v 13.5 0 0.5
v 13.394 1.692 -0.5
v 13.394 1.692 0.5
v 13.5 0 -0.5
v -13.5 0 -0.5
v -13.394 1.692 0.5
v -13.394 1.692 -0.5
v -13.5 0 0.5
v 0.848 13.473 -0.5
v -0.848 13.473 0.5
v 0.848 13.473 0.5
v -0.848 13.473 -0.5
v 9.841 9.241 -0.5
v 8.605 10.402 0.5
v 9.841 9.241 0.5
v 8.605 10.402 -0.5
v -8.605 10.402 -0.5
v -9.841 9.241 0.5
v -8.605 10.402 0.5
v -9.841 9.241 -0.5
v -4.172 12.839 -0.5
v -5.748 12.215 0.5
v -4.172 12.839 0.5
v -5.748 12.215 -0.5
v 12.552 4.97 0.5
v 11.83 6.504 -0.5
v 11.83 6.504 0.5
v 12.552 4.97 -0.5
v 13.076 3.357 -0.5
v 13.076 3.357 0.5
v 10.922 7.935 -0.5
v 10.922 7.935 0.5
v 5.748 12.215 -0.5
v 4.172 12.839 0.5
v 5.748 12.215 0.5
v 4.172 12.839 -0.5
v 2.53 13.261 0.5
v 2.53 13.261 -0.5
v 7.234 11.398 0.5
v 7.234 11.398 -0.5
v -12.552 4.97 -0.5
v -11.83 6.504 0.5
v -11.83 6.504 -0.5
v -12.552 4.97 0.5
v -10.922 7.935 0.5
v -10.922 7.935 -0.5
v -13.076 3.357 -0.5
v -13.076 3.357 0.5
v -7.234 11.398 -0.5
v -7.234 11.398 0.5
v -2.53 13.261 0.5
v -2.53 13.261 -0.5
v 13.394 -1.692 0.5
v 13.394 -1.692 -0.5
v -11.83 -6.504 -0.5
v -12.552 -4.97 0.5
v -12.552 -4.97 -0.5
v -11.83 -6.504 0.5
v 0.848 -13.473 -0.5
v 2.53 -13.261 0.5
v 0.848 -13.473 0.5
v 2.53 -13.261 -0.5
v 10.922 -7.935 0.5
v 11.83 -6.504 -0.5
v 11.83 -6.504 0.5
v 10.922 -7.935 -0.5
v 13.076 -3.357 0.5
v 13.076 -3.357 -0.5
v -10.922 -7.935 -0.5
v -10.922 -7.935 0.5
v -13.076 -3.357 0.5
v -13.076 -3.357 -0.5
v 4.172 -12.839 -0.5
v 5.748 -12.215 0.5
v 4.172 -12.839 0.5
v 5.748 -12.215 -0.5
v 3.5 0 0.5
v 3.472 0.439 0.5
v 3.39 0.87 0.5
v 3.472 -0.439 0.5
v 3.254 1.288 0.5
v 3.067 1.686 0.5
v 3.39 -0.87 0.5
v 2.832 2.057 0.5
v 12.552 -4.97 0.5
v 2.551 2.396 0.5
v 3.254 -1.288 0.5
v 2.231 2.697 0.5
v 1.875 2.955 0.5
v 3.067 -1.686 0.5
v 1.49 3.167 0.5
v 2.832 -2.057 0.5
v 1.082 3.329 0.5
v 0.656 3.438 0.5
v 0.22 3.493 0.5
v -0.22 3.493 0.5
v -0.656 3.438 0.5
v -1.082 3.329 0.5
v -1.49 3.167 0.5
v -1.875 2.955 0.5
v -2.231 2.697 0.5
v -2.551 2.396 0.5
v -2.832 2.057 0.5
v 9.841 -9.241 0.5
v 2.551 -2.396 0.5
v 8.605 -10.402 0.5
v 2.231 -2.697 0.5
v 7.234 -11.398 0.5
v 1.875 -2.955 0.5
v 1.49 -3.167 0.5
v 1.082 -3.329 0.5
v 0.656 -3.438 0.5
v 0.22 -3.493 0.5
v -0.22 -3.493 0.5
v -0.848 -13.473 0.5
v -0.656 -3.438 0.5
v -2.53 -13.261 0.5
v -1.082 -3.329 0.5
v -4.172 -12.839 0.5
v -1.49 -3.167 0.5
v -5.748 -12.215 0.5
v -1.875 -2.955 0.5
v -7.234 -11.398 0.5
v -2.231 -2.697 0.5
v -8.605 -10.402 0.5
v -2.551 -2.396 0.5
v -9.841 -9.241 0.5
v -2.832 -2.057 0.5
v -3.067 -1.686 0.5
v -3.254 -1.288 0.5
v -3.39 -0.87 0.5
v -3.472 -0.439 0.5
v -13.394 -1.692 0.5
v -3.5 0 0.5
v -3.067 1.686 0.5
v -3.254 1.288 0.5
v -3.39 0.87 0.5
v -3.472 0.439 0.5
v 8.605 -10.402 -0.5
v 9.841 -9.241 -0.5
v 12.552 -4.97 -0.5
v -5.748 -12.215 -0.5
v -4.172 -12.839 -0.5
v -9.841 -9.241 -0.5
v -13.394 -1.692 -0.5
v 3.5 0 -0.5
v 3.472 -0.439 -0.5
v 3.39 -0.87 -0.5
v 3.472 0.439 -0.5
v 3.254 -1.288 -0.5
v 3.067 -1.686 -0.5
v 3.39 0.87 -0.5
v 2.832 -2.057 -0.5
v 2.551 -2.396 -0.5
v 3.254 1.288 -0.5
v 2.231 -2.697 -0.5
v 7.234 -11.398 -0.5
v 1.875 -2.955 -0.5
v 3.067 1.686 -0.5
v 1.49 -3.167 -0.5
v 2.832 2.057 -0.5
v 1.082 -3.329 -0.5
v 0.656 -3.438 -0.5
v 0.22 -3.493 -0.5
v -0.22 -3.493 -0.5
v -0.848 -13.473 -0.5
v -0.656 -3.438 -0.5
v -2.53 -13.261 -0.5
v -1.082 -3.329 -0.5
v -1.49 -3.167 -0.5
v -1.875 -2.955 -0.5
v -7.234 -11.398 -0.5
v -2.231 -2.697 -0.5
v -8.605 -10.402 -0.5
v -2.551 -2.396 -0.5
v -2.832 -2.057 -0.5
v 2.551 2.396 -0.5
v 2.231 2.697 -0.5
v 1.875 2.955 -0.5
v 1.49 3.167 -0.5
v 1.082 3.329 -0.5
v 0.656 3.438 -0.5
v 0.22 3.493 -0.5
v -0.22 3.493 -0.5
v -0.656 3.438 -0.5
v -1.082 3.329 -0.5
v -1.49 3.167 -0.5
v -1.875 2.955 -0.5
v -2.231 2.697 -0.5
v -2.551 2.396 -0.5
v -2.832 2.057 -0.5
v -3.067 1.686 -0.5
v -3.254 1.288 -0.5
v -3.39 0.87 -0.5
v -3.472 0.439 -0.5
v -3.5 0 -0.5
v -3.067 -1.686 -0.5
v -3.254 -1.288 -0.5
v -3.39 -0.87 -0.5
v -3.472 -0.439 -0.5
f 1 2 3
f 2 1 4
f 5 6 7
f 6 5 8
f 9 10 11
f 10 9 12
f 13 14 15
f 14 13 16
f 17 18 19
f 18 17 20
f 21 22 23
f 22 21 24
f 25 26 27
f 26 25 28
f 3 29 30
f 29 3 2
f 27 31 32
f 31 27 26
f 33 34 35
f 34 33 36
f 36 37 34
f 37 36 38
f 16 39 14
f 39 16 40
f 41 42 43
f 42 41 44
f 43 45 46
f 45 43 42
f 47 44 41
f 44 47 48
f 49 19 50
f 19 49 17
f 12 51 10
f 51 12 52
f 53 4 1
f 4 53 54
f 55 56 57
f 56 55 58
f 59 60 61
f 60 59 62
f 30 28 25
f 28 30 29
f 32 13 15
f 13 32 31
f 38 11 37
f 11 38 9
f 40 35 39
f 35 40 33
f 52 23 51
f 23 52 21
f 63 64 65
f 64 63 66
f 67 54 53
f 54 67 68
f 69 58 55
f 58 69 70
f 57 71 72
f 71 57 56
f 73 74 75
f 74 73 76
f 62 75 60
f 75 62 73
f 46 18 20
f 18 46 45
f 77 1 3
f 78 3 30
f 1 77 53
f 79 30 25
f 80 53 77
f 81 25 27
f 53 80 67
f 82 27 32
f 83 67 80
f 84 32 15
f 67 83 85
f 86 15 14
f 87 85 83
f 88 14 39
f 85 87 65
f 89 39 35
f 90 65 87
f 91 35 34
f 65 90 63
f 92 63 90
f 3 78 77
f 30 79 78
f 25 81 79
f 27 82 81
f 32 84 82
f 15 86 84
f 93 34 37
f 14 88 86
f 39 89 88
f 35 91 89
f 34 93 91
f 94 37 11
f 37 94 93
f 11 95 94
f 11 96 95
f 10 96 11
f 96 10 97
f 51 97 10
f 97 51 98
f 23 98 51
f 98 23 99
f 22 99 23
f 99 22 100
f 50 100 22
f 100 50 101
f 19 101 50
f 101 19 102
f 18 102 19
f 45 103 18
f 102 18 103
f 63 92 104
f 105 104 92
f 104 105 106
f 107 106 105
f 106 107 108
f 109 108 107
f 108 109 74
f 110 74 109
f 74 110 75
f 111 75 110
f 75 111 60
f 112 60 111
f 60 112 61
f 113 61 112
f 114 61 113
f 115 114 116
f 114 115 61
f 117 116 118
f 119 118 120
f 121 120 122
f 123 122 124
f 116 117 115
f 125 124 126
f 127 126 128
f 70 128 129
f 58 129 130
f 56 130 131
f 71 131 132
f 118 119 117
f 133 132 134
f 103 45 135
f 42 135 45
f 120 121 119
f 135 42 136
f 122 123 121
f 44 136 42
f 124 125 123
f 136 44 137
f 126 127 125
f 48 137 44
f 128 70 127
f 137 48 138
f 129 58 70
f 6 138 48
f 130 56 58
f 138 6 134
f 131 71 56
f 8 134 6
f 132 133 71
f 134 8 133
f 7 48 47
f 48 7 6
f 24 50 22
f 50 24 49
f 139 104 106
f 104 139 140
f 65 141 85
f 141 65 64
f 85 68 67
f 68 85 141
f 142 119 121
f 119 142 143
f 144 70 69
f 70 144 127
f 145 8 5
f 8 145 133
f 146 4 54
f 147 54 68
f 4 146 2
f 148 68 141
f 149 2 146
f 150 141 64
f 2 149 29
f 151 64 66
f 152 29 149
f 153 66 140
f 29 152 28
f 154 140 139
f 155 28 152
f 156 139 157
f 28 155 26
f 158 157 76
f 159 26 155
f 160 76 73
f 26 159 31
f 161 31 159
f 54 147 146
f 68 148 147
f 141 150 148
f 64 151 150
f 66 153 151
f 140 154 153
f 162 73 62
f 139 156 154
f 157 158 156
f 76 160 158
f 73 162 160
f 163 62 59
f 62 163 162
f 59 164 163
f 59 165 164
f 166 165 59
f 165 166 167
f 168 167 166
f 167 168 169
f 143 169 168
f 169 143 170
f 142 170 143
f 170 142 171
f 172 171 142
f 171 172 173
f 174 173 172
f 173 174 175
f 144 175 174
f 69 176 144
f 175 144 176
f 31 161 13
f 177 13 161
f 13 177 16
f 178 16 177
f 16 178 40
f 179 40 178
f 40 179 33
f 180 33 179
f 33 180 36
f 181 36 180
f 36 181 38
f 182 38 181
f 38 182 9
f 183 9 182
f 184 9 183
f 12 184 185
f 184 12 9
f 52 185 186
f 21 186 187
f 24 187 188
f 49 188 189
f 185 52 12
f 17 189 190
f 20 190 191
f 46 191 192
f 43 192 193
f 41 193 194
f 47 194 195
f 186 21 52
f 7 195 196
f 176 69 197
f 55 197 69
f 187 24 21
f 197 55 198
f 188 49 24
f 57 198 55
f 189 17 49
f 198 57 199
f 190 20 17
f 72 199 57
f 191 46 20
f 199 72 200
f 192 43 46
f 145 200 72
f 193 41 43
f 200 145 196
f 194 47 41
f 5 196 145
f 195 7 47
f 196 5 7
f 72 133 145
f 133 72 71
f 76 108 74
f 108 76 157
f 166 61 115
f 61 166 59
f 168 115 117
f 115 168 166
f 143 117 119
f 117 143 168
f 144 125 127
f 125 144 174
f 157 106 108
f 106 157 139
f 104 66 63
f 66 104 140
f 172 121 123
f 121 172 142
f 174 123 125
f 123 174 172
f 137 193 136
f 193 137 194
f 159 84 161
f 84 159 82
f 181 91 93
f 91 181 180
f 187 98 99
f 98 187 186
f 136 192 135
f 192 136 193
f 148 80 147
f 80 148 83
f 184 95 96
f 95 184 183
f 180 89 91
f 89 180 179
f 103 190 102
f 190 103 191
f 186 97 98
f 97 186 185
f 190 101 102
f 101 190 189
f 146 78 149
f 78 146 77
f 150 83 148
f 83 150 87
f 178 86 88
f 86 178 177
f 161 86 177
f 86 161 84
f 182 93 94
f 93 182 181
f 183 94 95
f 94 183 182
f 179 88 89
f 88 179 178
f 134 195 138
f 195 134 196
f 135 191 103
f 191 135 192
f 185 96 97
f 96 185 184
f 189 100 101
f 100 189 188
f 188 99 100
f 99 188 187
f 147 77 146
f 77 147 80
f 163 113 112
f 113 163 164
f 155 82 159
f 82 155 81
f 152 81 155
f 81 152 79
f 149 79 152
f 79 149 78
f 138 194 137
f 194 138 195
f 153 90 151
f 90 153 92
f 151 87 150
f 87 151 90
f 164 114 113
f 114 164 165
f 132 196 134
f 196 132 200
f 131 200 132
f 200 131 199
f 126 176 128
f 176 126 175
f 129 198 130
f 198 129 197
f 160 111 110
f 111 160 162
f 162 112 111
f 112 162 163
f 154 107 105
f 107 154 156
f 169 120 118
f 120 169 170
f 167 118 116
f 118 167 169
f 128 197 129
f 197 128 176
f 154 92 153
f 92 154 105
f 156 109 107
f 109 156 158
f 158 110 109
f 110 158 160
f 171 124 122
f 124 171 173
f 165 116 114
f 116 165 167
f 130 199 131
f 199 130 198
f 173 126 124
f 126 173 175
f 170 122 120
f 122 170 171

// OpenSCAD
$fn = 50;


difference() {
	union() {
		translate(v = [0, 0, -0.5000000000]) {
			cylinder(h = 1, r = 13.5000000000);
		}
	}
	union() {
		translate(v = [0, 0, -100.0000000000]) {
			cylinder(h = 200, r = 3.5000000000);
		}
	}
}
